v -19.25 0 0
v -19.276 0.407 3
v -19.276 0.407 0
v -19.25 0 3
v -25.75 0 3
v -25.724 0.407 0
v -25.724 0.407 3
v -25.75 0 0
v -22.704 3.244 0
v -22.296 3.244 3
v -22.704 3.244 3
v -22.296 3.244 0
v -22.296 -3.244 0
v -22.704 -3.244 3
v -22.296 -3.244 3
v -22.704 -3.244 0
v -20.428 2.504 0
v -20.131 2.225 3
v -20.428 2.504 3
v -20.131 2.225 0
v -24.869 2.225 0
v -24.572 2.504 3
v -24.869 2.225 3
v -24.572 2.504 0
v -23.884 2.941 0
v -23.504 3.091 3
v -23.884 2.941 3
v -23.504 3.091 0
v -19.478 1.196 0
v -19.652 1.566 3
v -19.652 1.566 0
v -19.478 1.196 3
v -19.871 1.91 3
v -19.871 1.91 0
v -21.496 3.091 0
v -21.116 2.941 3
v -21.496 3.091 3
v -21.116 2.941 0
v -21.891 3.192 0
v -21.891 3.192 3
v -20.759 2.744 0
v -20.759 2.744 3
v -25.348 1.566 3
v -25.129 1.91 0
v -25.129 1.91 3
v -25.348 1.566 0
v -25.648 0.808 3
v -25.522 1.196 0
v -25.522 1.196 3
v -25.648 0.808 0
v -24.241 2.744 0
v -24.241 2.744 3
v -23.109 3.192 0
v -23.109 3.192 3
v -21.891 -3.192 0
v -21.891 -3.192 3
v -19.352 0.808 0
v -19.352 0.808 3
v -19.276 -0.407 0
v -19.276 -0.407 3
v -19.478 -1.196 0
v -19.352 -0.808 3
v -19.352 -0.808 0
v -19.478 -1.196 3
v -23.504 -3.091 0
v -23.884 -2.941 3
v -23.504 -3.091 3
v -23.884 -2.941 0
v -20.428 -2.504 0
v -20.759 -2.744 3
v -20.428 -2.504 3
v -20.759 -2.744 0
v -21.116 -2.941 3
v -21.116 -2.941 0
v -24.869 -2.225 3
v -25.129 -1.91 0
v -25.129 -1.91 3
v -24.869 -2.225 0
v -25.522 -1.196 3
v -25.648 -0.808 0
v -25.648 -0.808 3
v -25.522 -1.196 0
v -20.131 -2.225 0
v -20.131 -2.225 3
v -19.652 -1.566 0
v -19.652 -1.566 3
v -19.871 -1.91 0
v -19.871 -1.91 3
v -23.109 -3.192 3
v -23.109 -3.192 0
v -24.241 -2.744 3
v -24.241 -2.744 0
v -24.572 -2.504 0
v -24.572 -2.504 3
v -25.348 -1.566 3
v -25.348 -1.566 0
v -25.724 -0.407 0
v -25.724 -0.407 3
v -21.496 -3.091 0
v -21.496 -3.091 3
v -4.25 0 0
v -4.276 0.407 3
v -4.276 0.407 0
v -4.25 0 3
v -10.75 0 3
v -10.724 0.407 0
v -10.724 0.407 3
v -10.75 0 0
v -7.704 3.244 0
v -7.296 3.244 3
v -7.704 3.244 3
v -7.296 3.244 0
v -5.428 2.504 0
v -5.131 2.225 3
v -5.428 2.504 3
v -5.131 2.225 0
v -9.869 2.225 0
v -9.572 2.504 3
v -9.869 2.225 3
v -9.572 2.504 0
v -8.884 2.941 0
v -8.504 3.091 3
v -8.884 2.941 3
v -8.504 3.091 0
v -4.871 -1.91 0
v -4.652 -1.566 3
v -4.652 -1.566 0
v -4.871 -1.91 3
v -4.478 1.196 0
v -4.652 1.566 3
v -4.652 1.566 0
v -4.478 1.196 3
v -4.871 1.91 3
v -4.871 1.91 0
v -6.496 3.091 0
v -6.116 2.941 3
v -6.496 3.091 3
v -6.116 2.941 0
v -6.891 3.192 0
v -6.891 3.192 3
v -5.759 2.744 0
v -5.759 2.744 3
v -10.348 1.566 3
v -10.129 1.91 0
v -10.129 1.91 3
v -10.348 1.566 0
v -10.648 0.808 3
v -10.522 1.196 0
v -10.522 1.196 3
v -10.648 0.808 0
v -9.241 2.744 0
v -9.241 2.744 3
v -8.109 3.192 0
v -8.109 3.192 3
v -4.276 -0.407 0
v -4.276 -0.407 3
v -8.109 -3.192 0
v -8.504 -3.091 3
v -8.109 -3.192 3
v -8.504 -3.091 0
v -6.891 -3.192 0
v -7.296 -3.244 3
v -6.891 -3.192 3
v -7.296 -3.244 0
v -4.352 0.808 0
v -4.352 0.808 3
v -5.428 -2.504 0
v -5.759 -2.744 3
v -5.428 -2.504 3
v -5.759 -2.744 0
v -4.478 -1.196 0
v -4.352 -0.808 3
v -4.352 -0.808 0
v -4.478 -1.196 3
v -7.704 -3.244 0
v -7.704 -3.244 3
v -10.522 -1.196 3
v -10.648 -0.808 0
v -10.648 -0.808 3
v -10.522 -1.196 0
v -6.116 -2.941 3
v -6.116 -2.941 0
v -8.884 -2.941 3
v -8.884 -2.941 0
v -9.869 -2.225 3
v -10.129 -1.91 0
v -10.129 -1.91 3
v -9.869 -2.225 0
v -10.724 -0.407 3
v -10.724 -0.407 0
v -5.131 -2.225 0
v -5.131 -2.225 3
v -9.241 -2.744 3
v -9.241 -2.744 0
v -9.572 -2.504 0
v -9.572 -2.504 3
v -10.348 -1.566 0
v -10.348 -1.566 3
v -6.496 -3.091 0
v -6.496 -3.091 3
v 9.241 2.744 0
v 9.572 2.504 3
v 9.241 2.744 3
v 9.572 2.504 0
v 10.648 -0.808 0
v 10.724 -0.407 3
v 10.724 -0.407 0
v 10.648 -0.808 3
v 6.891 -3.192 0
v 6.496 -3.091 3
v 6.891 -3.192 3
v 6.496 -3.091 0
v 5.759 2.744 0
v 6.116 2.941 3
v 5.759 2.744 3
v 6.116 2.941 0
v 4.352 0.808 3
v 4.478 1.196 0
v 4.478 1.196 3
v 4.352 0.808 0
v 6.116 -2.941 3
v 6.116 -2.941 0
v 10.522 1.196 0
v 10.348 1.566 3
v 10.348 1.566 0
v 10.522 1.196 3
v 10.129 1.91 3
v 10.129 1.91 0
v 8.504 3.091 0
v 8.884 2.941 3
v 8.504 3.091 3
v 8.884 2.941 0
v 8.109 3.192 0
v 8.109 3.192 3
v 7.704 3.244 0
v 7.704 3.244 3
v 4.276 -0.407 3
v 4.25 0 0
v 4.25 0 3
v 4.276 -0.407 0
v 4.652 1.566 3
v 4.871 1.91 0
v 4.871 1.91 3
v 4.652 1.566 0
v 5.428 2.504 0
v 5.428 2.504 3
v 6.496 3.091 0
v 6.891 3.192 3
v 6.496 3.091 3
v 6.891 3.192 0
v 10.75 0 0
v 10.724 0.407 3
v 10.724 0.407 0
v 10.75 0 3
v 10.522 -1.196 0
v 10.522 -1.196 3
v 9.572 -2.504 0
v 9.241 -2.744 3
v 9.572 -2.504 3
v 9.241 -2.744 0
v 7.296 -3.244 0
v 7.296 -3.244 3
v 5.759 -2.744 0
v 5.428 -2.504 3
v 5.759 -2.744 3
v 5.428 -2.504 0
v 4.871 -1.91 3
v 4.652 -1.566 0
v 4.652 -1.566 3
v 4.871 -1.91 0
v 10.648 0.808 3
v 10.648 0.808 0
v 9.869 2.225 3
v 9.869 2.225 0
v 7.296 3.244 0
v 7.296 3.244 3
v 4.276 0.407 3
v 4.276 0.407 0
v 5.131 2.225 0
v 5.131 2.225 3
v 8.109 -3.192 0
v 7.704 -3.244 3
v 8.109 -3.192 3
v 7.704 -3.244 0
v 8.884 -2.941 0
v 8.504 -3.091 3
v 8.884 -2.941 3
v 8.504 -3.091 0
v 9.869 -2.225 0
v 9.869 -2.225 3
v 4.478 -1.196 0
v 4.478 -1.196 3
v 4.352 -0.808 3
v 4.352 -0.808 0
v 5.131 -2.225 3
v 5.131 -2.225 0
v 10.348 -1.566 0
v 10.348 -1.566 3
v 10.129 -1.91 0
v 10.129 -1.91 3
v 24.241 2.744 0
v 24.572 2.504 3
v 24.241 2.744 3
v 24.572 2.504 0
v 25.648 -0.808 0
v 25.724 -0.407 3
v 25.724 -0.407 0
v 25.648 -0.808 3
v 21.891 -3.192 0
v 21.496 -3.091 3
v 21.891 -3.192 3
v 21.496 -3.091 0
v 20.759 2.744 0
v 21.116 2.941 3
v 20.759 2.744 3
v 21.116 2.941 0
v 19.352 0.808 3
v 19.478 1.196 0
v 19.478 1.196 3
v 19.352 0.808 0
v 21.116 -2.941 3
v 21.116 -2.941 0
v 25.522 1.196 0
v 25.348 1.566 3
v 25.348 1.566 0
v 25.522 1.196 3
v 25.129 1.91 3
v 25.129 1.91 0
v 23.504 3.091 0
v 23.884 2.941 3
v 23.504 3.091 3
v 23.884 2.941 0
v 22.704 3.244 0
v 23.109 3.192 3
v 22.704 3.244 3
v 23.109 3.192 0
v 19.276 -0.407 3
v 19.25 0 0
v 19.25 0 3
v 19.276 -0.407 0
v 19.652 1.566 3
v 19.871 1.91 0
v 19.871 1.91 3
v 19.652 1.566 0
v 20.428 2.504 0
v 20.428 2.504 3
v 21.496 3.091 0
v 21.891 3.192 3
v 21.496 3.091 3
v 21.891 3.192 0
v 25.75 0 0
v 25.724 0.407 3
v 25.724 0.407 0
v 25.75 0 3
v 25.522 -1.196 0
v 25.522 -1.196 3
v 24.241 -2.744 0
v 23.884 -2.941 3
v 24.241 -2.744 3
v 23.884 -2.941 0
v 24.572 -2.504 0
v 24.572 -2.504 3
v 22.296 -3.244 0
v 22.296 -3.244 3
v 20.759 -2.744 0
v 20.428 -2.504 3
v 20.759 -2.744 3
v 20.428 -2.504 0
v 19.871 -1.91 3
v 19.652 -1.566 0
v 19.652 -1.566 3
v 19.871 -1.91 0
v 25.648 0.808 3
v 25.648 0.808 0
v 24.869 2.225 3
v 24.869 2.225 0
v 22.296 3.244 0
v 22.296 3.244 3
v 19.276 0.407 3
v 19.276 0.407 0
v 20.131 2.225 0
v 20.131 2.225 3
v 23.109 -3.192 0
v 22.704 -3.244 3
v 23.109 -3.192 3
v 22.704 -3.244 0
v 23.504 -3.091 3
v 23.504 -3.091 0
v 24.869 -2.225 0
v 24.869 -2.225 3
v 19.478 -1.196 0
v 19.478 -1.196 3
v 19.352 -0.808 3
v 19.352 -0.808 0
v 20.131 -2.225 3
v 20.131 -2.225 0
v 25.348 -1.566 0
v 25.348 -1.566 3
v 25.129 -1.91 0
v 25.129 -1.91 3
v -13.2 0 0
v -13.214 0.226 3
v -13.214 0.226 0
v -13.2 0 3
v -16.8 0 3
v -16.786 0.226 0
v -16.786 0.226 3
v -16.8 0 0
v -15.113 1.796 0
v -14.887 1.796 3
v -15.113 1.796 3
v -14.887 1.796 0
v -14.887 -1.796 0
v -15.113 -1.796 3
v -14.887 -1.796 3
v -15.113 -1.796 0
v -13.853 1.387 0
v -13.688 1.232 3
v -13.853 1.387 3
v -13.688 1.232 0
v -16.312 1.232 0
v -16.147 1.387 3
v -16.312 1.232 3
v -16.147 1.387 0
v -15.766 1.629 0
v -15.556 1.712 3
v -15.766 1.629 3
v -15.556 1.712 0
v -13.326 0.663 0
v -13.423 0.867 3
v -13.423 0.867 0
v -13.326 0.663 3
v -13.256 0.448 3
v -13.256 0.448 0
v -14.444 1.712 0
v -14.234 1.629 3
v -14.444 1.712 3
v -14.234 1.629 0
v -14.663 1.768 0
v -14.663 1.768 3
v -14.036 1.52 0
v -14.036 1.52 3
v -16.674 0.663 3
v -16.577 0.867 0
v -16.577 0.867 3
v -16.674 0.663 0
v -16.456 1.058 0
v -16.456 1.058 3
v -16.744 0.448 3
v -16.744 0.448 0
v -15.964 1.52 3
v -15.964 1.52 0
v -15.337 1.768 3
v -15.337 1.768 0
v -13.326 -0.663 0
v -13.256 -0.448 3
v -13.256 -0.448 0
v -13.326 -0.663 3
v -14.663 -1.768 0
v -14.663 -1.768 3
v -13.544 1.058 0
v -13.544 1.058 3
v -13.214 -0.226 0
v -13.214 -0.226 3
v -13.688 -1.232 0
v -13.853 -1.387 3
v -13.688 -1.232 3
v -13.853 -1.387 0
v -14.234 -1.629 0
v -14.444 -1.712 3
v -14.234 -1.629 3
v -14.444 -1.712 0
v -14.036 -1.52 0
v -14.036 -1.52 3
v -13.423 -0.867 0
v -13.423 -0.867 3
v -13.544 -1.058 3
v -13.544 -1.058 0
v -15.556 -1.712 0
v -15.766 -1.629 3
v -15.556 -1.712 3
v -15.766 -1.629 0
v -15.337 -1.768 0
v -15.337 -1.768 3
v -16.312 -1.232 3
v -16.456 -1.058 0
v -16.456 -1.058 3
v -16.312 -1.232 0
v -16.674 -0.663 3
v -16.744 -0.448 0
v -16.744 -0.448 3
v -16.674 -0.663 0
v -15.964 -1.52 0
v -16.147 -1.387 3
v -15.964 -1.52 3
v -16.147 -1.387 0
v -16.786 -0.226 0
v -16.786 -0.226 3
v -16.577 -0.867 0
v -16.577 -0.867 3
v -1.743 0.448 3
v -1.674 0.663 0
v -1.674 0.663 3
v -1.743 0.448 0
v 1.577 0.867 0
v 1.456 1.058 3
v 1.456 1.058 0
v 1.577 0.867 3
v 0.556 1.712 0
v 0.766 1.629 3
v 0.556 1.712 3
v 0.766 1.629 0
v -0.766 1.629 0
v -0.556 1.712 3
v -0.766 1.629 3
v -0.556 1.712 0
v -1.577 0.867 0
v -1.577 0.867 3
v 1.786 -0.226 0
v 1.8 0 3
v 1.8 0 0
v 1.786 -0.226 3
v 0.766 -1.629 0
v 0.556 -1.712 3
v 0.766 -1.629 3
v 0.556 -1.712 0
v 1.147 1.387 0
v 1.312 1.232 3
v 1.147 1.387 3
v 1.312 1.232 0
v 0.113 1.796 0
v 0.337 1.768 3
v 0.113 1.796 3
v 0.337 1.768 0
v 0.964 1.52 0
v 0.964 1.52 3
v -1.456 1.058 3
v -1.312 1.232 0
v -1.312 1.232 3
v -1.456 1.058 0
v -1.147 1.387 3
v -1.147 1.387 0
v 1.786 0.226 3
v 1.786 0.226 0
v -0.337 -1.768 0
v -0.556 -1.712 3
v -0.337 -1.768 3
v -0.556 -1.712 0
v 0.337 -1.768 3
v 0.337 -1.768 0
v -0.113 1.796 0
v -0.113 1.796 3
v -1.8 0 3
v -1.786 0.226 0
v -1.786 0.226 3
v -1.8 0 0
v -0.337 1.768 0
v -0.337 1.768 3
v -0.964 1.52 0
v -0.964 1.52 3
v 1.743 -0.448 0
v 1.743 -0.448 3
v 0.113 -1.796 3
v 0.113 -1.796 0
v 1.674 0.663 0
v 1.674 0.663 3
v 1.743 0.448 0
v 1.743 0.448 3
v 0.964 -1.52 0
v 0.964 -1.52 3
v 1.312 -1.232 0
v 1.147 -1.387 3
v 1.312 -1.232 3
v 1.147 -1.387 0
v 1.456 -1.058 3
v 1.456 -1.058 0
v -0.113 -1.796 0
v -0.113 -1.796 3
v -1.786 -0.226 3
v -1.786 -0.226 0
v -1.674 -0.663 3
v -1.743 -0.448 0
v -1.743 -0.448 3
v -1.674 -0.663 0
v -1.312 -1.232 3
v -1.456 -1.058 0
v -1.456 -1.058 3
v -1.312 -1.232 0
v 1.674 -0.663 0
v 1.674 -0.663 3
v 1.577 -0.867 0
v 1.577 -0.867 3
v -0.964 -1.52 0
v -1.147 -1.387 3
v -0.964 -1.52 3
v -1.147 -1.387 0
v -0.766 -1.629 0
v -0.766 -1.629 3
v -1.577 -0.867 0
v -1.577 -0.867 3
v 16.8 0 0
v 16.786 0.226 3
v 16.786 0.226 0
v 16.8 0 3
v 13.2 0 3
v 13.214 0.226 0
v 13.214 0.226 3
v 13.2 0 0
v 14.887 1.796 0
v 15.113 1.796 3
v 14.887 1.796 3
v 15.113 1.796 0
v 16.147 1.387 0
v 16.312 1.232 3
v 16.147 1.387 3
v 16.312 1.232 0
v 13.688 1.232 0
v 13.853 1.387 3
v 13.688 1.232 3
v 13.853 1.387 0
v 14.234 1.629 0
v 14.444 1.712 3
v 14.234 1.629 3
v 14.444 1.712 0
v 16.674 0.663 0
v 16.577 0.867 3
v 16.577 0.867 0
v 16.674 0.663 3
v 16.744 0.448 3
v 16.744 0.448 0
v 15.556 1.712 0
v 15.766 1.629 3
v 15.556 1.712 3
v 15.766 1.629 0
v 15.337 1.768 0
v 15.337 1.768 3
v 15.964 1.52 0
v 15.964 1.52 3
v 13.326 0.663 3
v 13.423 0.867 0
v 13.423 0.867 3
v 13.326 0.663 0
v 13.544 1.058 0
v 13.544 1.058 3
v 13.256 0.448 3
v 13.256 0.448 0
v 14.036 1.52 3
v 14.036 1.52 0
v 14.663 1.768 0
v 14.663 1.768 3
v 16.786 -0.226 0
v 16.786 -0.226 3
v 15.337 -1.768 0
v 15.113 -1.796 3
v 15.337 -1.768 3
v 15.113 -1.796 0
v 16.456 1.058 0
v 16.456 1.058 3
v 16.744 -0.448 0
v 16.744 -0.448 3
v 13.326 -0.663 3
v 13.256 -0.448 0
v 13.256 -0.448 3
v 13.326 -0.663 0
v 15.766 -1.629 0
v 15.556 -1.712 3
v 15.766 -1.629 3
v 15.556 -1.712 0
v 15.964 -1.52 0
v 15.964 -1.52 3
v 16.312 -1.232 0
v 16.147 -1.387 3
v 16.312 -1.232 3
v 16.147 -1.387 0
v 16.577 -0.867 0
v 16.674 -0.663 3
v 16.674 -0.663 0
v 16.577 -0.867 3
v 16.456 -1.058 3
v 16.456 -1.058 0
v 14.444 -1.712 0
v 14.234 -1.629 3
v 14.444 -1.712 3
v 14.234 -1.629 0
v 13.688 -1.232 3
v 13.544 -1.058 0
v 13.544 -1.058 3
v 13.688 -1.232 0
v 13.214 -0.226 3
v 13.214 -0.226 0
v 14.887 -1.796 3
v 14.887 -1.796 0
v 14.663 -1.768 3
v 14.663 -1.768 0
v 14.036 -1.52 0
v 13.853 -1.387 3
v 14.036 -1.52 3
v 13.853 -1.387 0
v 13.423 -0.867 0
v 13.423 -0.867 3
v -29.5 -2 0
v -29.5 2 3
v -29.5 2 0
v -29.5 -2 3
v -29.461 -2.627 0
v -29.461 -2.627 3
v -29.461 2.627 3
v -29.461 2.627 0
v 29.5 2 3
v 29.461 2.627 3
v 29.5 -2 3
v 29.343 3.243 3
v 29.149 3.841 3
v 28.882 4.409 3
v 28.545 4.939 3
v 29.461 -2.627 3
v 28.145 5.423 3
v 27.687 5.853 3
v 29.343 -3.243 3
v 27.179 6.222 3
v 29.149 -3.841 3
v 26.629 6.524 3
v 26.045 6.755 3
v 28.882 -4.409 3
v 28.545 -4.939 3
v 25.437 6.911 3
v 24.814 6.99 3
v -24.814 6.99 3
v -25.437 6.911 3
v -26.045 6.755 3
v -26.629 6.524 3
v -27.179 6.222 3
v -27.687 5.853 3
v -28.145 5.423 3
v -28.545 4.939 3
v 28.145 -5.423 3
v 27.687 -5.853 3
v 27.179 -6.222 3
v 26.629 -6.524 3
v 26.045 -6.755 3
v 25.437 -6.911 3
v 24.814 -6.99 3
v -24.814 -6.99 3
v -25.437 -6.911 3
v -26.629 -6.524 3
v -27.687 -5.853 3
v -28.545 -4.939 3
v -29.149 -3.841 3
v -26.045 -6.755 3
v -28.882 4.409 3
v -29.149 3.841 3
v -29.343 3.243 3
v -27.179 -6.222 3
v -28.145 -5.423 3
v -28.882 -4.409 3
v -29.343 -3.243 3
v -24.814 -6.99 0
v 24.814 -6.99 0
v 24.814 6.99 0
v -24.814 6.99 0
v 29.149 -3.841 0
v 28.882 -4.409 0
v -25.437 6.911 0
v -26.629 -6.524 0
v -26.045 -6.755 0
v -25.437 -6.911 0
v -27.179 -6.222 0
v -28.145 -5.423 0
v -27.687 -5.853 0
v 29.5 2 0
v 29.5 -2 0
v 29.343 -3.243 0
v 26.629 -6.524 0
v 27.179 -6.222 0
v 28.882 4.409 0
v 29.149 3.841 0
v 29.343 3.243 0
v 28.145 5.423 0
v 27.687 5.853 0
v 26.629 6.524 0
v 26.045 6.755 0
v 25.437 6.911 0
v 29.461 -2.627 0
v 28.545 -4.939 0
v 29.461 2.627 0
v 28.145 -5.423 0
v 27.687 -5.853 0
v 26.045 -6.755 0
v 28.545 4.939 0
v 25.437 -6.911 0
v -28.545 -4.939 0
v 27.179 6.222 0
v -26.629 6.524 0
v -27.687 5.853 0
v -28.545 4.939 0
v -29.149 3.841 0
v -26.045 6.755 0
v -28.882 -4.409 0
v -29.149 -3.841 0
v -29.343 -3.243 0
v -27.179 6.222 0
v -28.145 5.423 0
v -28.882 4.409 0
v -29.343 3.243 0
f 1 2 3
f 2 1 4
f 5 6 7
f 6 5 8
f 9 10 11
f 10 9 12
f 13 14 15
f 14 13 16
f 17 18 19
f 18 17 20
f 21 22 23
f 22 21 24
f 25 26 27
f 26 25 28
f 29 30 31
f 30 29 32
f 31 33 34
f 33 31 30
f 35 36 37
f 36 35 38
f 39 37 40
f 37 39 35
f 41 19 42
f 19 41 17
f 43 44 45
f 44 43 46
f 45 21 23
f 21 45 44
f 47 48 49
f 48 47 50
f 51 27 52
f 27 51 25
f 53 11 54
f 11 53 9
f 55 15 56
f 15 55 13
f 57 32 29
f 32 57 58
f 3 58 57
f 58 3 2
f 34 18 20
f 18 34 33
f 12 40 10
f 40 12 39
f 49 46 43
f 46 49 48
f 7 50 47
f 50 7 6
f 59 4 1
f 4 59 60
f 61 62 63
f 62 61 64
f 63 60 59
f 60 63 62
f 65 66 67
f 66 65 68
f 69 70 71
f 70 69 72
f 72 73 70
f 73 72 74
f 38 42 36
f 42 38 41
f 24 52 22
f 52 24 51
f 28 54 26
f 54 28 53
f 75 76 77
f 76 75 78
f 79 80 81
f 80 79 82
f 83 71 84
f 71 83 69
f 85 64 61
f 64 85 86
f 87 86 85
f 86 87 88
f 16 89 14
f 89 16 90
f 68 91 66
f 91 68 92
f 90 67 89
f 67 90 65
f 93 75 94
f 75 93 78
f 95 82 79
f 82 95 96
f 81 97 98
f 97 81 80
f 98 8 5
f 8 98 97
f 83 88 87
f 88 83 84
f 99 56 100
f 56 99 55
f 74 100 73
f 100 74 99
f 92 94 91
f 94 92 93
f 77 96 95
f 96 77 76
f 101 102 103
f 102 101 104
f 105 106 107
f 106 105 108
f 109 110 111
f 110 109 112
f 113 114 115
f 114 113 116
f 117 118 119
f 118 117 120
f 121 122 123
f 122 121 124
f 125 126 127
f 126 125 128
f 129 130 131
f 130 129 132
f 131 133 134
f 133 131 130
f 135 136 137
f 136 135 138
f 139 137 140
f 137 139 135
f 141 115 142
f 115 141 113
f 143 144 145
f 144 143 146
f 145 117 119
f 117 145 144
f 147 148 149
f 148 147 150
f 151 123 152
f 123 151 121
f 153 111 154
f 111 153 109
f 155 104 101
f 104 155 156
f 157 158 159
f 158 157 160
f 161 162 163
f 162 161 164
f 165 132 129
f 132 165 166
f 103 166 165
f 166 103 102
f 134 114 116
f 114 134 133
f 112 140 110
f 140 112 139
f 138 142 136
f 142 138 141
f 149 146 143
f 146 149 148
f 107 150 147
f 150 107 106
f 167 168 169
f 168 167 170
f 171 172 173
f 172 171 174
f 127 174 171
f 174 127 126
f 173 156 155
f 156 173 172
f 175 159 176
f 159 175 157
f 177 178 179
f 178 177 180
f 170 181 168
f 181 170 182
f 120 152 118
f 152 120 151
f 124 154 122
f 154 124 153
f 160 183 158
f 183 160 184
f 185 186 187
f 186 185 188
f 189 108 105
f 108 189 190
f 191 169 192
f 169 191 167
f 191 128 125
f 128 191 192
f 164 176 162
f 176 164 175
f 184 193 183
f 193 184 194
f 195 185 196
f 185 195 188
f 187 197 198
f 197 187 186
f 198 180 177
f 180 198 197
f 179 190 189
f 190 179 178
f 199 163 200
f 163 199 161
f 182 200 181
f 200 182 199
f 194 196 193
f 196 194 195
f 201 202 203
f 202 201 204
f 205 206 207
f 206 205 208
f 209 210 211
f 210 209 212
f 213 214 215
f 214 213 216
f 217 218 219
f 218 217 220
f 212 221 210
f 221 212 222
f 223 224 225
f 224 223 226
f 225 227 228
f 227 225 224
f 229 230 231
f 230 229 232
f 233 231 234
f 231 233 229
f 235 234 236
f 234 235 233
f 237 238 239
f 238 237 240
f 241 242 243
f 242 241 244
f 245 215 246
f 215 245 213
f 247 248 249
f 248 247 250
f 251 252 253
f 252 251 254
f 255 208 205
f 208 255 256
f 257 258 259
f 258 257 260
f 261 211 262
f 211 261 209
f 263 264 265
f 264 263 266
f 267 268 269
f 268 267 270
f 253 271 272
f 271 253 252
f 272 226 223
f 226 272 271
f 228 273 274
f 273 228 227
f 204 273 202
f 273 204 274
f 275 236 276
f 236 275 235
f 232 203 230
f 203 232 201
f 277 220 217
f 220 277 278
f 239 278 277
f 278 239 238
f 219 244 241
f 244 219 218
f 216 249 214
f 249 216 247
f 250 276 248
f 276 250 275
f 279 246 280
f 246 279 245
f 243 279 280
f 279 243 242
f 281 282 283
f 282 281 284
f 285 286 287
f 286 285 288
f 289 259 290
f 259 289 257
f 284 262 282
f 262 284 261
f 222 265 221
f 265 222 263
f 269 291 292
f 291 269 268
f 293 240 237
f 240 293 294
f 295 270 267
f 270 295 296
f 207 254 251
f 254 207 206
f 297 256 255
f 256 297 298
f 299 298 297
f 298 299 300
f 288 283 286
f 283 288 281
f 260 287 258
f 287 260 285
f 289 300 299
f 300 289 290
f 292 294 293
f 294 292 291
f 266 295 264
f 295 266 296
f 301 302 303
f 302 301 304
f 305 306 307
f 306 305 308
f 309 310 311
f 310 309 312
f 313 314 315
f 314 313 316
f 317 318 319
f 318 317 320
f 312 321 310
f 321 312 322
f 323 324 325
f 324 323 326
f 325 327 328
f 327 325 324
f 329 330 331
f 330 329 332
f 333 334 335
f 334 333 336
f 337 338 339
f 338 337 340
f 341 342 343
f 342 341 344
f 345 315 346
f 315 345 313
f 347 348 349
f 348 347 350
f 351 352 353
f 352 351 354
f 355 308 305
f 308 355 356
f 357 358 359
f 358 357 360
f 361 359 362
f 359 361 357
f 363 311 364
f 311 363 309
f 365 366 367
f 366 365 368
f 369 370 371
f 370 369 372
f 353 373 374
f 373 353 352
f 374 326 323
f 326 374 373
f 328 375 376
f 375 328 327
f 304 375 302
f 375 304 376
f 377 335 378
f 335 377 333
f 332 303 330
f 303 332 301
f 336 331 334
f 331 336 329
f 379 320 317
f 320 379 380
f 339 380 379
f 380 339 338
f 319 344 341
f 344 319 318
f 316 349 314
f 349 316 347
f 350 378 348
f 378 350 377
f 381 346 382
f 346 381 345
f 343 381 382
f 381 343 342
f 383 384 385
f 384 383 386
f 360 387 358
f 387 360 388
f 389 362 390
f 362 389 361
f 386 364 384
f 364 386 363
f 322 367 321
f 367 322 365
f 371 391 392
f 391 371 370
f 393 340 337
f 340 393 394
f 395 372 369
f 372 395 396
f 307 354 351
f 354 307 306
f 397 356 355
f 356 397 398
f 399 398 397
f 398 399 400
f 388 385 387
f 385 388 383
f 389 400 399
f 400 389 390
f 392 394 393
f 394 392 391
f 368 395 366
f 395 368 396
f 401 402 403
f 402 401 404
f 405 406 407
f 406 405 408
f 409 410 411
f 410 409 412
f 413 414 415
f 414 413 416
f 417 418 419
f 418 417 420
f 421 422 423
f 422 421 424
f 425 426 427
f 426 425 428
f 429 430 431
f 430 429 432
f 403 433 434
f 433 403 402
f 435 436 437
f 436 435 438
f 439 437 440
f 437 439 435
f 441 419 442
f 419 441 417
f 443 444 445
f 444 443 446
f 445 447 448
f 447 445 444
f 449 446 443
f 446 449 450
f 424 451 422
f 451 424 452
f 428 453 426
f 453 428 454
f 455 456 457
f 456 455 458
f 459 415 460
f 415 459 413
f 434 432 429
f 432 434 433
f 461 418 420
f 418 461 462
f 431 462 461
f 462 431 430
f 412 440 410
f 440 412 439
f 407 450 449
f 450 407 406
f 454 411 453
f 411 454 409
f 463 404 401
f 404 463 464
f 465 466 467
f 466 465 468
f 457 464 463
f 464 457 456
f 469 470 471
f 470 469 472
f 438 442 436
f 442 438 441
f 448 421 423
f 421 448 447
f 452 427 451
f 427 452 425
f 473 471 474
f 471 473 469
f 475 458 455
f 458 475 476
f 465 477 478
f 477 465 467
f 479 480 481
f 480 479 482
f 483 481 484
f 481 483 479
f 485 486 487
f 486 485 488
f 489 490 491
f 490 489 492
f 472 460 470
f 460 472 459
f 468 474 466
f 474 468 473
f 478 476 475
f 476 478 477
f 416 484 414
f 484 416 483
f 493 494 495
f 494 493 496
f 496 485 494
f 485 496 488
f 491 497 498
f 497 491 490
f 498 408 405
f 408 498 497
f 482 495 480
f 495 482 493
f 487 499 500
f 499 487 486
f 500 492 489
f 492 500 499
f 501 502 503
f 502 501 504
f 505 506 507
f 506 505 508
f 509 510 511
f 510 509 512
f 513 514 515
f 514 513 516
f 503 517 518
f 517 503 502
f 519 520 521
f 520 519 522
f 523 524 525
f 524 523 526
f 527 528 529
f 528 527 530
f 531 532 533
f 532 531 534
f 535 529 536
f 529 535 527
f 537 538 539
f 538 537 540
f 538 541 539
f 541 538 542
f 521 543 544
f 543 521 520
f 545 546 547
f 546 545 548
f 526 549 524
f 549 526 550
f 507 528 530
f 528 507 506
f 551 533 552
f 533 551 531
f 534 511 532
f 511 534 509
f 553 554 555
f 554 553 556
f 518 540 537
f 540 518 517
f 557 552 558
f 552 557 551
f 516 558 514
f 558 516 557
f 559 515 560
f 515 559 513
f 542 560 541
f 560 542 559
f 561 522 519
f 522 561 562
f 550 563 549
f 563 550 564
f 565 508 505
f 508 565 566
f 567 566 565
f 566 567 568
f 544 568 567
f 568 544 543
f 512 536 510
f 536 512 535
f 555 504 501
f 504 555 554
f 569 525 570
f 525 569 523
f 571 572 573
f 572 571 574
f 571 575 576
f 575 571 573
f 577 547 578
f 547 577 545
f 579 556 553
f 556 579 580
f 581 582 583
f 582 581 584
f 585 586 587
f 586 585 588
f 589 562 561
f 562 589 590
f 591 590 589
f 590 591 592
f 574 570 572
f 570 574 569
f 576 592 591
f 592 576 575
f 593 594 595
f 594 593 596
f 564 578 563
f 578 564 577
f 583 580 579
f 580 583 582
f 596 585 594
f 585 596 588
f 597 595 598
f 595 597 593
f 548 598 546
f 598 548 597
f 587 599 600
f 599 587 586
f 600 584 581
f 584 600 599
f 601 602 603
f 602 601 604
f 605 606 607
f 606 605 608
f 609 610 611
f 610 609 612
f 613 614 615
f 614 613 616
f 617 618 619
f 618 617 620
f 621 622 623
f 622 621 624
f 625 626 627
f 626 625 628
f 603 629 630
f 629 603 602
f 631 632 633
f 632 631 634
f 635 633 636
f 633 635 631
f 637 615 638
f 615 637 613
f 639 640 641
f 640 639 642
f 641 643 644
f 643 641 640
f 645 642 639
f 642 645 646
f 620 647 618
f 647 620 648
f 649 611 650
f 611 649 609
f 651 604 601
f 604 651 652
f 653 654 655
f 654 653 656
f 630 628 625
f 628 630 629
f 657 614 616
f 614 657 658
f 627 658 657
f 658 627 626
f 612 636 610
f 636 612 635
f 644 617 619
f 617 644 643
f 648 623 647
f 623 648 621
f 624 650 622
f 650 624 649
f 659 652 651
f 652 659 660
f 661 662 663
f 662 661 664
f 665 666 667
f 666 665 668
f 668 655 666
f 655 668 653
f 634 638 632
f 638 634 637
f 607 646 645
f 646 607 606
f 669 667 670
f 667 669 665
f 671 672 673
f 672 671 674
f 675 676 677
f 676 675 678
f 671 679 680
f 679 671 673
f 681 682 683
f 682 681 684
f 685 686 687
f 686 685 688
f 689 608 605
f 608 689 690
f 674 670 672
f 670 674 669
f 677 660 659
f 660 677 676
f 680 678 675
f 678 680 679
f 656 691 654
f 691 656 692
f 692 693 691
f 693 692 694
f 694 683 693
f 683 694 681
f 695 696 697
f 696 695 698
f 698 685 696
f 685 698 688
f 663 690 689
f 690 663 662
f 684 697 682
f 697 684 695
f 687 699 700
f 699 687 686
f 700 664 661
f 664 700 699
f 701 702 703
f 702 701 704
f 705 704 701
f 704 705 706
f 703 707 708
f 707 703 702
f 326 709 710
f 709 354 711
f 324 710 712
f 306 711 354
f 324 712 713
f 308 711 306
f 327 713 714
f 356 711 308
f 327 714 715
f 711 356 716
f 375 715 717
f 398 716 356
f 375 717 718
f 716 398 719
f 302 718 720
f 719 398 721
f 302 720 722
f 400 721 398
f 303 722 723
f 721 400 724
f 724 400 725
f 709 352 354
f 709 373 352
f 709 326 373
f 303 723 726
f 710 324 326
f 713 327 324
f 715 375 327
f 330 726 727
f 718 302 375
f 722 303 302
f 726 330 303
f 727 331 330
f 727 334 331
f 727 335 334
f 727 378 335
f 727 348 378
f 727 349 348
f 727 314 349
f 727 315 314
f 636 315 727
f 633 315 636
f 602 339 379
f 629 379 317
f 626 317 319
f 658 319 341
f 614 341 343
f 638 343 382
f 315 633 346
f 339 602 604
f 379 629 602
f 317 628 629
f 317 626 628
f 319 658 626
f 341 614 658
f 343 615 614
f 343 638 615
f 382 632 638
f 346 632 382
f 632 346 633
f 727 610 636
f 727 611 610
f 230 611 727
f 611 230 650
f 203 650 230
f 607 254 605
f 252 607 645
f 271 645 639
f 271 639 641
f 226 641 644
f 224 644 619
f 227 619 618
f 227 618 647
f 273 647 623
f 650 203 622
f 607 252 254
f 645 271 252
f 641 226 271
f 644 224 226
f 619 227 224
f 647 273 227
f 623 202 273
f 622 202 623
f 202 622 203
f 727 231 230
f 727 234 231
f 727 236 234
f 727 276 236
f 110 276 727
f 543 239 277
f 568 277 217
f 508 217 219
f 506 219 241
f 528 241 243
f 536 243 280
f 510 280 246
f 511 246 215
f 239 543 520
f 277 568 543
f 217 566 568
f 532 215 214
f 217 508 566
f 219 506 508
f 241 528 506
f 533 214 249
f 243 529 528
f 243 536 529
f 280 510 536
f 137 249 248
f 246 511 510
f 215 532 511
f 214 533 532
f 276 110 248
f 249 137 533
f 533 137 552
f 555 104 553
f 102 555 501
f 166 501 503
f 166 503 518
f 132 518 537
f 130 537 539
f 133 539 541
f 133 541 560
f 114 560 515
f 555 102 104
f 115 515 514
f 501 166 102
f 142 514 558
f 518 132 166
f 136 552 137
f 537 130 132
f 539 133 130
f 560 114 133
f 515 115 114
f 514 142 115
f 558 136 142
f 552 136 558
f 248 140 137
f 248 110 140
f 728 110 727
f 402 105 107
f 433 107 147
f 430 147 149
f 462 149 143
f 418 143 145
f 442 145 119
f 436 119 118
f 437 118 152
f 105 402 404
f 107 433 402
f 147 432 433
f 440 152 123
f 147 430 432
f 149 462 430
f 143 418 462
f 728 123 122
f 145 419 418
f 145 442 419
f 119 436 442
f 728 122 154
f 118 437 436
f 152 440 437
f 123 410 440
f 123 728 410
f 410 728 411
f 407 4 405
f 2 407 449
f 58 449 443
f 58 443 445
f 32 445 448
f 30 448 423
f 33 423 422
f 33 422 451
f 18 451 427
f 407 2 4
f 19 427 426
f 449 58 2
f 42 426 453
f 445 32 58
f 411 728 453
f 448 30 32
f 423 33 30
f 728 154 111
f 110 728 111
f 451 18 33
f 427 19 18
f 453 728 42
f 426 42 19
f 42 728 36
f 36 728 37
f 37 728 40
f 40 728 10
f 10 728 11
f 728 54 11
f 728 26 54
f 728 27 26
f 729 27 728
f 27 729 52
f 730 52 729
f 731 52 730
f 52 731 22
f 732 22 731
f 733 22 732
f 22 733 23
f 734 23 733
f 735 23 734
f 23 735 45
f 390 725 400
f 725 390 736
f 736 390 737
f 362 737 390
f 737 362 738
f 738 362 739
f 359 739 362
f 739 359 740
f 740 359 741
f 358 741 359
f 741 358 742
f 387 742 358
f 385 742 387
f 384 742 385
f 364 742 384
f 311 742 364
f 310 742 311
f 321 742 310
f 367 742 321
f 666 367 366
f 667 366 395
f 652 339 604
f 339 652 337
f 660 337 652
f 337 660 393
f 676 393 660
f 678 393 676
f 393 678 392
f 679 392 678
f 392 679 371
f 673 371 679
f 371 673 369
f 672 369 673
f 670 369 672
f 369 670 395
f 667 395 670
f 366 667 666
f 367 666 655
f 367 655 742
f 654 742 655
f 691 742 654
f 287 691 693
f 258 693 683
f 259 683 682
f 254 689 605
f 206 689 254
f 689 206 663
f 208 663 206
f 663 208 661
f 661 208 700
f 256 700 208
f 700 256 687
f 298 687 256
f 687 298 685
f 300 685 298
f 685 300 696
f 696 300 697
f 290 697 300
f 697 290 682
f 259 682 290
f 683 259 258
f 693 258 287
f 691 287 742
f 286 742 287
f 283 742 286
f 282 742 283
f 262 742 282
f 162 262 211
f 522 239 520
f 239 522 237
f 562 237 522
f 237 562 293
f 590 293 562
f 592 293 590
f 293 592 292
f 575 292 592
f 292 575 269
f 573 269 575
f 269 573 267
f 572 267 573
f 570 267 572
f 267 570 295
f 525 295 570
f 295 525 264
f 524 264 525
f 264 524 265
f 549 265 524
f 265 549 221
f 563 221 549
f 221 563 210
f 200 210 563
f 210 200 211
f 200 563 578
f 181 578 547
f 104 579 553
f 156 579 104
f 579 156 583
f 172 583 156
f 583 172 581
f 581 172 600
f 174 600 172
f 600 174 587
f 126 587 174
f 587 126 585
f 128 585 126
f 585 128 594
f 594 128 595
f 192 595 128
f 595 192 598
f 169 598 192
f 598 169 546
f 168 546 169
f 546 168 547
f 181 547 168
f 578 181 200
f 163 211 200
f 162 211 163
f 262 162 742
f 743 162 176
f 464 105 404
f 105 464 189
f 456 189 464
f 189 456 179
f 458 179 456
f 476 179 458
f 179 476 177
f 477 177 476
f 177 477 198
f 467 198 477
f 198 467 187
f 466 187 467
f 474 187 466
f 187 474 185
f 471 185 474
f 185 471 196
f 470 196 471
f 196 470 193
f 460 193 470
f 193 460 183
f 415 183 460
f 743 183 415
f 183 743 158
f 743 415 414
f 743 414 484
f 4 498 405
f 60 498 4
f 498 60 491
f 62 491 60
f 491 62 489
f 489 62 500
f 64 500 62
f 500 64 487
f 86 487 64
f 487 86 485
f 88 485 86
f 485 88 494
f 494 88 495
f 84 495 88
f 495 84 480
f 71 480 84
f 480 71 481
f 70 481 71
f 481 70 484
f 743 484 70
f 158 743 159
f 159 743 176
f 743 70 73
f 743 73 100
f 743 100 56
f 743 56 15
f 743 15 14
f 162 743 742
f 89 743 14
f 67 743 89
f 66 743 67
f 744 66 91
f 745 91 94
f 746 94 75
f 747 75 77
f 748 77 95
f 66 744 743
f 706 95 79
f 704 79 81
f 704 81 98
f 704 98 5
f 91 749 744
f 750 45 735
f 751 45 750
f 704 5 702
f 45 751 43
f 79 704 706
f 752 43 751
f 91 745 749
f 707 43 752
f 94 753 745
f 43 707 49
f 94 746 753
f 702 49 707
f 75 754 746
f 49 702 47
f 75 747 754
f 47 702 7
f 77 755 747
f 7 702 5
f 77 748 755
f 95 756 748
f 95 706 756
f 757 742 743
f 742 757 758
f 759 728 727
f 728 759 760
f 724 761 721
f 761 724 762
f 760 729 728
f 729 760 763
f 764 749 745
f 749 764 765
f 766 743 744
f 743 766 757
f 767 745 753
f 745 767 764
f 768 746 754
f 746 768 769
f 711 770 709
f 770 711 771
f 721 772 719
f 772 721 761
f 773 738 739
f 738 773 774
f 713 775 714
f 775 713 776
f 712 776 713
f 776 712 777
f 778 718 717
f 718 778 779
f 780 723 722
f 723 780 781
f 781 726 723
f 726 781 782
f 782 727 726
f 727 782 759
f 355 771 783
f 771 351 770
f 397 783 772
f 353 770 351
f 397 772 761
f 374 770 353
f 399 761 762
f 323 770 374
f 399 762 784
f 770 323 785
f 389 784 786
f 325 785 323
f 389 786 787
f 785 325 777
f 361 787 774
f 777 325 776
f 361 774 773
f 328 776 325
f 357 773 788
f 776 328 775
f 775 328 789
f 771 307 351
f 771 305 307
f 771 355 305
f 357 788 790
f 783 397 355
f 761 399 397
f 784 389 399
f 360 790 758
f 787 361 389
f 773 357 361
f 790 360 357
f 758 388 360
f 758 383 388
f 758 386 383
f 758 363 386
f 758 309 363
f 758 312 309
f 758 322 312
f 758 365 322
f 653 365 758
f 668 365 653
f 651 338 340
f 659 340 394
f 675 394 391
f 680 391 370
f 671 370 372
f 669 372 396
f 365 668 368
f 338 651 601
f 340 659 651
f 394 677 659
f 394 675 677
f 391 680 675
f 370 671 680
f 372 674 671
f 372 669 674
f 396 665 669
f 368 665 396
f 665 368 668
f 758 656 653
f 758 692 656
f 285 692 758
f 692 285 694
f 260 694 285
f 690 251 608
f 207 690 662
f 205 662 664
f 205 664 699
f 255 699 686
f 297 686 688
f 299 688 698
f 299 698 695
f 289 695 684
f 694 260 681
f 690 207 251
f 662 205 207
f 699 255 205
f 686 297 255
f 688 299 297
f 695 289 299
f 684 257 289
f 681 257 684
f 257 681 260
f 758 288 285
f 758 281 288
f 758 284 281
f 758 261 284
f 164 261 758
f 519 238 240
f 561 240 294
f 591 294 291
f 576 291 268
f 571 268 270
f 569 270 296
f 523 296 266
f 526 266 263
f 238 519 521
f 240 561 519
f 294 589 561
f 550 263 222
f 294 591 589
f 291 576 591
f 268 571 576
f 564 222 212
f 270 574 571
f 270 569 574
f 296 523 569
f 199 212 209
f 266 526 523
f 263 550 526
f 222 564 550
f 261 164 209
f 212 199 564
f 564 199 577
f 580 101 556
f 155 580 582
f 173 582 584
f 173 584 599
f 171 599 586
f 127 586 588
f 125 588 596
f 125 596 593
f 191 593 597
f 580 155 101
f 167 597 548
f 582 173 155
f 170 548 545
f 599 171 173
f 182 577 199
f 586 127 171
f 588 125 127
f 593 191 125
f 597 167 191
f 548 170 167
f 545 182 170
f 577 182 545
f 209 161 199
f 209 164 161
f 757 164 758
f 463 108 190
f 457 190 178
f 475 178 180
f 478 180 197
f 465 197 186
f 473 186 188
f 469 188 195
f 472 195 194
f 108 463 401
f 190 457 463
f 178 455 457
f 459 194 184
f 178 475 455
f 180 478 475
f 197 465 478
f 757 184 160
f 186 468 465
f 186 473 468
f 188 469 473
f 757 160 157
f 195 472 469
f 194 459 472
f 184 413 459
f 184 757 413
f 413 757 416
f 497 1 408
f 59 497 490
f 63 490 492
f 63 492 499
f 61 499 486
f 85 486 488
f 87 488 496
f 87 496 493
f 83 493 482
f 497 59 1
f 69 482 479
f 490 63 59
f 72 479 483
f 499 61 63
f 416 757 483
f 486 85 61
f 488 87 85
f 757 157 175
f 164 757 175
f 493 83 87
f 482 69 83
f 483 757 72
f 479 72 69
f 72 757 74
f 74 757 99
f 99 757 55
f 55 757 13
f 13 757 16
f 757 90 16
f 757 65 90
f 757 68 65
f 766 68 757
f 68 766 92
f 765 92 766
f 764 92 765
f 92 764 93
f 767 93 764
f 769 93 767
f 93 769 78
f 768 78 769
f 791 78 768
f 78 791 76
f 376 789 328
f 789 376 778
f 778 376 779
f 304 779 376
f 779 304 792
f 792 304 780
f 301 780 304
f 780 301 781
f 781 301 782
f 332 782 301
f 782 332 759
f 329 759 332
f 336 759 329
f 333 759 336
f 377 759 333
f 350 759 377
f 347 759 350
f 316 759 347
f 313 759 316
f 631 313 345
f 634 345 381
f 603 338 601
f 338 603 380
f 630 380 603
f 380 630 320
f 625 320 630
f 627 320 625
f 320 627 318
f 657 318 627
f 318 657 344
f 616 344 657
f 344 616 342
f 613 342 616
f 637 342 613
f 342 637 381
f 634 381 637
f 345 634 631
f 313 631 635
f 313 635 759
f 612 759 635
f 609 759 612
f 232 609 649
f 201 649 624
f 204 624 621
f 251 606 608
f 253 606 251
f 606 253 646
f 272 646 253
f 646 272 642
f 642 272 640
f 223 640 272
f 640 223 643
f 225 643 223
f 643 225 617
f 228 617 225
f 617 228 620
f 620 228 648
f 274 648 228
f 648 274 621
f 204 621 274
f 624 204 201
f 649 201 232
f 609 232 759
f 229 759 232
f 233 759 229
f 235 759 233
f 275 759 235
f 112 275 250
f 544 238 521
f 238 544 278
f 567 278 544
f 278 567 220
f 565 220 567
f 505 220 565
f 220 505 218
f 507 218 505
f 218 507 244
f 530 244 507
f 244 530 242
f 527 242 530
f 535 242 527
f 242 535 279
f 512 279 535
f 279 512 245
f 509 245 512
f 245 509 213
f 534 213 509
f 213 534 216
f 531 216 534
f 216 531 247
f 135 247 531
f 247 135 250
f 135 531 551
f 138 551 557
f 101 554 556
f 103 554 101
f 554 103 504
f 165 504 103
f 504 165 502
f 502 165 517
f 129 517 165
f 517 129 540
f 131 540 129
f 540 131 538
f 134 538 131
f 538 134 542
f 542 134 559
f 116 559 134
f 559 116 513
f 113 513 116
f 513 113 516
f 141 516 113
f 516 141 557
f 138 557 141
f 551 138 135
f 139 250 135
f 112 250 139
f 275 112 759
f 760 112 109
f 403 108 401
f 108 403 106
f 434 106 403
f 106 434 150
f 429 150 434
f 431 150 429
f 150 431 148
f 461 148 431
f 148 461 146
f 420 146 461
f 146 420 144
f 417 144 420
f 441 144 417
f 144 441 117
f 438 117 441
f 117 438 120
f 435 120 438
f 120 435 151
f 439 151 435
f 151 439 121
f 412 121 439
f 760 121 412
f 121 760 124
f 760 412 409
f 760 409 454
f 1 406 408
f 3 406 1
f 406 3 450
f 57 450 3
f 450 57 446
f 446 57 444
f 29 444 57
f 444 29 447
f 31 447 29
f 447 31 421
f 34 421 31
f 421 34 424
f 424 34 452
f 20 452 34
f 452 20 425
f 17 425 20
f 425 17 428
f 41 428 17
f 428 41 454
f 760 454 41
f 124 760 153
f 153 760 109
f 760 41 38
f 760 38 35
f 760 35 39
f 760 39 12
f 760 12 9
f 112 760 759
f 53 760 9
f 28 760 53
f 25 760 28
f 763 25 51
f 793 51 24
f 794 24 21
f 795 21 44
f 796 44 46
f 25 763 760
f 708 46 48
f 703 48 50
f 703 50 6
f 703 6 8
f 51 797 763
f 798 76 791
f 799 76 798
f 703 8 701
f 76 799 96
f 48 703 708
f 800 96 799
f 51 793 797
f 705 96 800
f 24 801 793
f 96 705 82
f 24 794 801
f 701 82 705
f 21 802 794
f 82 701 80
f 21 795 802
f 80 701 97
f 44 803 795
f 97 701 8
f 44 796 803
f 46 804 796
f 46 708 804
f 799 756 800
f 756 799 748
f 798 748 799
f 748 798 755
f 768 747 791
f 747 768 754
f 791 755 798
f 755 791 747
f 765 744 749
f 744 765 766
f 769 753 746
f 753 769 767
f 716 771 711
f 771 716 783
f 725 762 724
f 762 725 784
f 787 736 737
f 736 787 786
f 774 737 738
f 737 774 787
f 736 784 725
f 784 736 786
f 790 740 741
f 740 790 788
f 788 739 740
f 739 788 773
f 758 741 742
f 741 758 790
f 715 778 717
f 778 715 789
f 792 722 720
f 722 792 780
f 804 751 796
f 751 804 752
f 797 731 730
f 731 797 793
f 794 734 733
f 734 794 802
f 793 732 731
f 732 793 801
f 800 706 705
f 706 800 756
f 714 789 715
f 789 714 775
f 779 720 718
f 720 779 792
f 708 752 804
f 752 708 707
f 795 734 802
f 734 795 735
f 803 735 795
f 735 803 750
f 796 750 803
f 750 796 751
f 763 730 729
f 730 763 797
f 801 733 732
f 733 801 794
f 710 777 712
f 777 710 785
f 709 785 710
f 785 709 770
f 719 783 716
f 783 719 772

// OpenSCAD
$fn = 50;


difference() {
	union() {
		translate(v = [0, 0, 0]) {
			rotate(a = [0, 0, 0]) {
				hull() {
					translate(v = [-24.5000000000, 2.0000000000, 0]) {
						rotate(a = [0, 0, 0]) {
							translate(v = [0, 0, 0]) {
								rotate(a = [0, 0, 0]) {
									cylinder(h = 3, r = 5);
								}
							}
						}
					}
					translate(v = [24.5000000000, 2.0000000000, 0]) {
						rotate(a = [0, 0, 0]) {
							translate(v = [0, 0, 0]) {
								rotate(a = [0, 0, 0]) {
									cylinder(h = 3, r = 5);
								}
							}
						}
					}
					translate(v = [-24.5000000000, -2.0000000000, 0]) {
						rotate(a = [0, 0, 0]) {
							translate(v = [0, 0, 0]) {
								rotate(a = [0, 0, 0]) {
									cylinder(h = 3, r = 5);
								}
							}
						}
					}
					translate(v = [24.5000000000, -2.0000000000, 0]) {
						rotate(a = [0, 0, 0]) {
							translate(v = [0, 0, 0]) {
								rotate(a = [0, 0, 0]) {
									cylinder(h = 3, r = 5);
								}
							}
						}
					}
				}
			}
		}
	}
	union() {
		translate(v = [-22.5000000000, 0.0000000000, 0]) {
			rotate(a = [0, 0, 0]) {
				translate(v = [0, 0, -50]) {
					rotate(a = [0, 0, 0]) {
						cylinder(h = 100, r = 3.2500000000);
					}
				}
			}
		}
		translate(v = [-7.5000000000, 0.0000000000, 0]) {
			rotate(a = [0, 0, 0]) {
				translate(v = [0, 0, -50]) {
					rotate(a = [0, 0, 0]) {
						cylinder(h = 100, r = 3.2500000000);
					}
				}
			}
		}
		translate(v = [7.5000000000, 0.0000000000, 0]) {
			rotate(a = [0, 0, 0]) {
				translate(v = [0, 0, -50]) {
					rotate(a = [0, 0, 0]) {
						cylinder(h = 100, r = 3.2500000000);
					}
				}
			}
		}
		translate(v = [22.5000000000, 0.0000000000, 0]) {
			rotate(a = [0, 0, 0]) {
				translate(v = [0, 0, -50]) {
					rotate(a = [0, 0, 0]) {
						cylinder(h = 100, r = 3.2500000000);
					}
				}
			}
		}
		translate(v = [-22.5000000000, 0.0000000000, 0]) {
			rotate(a = [0, 0, 0]) {
				translate(v = [0, 0, -50]) {
					rotate(a = [0, 0, 0]) {
						cylinder(h = 100, r = 1.8000000000);
					}
				}
			}
		}
		translate(v = [-15.0000000000, 0.0000000000, 0]) {
			rotate(a = [0, 0, 0]) {
				translate(v = [0, 0, -50]) {
					rotate(a = [0, 0, 0]) {
						cylinder(h = 100, r = 1.8000000000);
					}
				}
			}
		}
		translate(v = [-7.5000000000, 0.0000000000, 0]) {
			rotate(a = [0, 0, 0]) {
				translate(v = [0, 0, -50]) {
					rotate(a = [0, 0, 0]) {
						cylinder(h = 100, r = 1.8000000000);
					}
				}
			}
		}
		translate(v = [0.0000000000, 0.0000000000, 0]) {
			rotate(a = [0, 0, 0]) {
				translate(v = [0, 0, -50]) {
					rotate(a = [0, 0, 0]) {
						cylinder(h = 100, r = 1.8000000000);
					}
				}
			}
		}
		translate(v = [7.5000000000, 0.0000000000, 0]) {
			rotate(a = [0, 0, 0]) {
				translate(v = [0, 0, -50]) {
					rotate(a = [0, 0, 0]) {
						cylinder(h = 100, r = 1.8000000000);
					}
				}
			}
		}
		translate(v = [15.0000000000, 0.0000000000, 0]) {
			rotate(a = [0, 0, 0]) {
				translate(v = [0, 0, -50]) {
					rotate(a = [0, 0, 0]) {
						cylinder(h = 100, r = 1.8000000000);
					}
				}
			}
		}
		translate(v = [22.5000000000, 0.0000000000, 0]) {
			rotate(a = [0, 0, 0]) {
				translate(v = [0, 0, -50]) {
					rotate(a = [0, 0, 0]) {
						cylinder(h = 100, r = 1.8000000000);
					}
				}
			}
		}
	}
}
